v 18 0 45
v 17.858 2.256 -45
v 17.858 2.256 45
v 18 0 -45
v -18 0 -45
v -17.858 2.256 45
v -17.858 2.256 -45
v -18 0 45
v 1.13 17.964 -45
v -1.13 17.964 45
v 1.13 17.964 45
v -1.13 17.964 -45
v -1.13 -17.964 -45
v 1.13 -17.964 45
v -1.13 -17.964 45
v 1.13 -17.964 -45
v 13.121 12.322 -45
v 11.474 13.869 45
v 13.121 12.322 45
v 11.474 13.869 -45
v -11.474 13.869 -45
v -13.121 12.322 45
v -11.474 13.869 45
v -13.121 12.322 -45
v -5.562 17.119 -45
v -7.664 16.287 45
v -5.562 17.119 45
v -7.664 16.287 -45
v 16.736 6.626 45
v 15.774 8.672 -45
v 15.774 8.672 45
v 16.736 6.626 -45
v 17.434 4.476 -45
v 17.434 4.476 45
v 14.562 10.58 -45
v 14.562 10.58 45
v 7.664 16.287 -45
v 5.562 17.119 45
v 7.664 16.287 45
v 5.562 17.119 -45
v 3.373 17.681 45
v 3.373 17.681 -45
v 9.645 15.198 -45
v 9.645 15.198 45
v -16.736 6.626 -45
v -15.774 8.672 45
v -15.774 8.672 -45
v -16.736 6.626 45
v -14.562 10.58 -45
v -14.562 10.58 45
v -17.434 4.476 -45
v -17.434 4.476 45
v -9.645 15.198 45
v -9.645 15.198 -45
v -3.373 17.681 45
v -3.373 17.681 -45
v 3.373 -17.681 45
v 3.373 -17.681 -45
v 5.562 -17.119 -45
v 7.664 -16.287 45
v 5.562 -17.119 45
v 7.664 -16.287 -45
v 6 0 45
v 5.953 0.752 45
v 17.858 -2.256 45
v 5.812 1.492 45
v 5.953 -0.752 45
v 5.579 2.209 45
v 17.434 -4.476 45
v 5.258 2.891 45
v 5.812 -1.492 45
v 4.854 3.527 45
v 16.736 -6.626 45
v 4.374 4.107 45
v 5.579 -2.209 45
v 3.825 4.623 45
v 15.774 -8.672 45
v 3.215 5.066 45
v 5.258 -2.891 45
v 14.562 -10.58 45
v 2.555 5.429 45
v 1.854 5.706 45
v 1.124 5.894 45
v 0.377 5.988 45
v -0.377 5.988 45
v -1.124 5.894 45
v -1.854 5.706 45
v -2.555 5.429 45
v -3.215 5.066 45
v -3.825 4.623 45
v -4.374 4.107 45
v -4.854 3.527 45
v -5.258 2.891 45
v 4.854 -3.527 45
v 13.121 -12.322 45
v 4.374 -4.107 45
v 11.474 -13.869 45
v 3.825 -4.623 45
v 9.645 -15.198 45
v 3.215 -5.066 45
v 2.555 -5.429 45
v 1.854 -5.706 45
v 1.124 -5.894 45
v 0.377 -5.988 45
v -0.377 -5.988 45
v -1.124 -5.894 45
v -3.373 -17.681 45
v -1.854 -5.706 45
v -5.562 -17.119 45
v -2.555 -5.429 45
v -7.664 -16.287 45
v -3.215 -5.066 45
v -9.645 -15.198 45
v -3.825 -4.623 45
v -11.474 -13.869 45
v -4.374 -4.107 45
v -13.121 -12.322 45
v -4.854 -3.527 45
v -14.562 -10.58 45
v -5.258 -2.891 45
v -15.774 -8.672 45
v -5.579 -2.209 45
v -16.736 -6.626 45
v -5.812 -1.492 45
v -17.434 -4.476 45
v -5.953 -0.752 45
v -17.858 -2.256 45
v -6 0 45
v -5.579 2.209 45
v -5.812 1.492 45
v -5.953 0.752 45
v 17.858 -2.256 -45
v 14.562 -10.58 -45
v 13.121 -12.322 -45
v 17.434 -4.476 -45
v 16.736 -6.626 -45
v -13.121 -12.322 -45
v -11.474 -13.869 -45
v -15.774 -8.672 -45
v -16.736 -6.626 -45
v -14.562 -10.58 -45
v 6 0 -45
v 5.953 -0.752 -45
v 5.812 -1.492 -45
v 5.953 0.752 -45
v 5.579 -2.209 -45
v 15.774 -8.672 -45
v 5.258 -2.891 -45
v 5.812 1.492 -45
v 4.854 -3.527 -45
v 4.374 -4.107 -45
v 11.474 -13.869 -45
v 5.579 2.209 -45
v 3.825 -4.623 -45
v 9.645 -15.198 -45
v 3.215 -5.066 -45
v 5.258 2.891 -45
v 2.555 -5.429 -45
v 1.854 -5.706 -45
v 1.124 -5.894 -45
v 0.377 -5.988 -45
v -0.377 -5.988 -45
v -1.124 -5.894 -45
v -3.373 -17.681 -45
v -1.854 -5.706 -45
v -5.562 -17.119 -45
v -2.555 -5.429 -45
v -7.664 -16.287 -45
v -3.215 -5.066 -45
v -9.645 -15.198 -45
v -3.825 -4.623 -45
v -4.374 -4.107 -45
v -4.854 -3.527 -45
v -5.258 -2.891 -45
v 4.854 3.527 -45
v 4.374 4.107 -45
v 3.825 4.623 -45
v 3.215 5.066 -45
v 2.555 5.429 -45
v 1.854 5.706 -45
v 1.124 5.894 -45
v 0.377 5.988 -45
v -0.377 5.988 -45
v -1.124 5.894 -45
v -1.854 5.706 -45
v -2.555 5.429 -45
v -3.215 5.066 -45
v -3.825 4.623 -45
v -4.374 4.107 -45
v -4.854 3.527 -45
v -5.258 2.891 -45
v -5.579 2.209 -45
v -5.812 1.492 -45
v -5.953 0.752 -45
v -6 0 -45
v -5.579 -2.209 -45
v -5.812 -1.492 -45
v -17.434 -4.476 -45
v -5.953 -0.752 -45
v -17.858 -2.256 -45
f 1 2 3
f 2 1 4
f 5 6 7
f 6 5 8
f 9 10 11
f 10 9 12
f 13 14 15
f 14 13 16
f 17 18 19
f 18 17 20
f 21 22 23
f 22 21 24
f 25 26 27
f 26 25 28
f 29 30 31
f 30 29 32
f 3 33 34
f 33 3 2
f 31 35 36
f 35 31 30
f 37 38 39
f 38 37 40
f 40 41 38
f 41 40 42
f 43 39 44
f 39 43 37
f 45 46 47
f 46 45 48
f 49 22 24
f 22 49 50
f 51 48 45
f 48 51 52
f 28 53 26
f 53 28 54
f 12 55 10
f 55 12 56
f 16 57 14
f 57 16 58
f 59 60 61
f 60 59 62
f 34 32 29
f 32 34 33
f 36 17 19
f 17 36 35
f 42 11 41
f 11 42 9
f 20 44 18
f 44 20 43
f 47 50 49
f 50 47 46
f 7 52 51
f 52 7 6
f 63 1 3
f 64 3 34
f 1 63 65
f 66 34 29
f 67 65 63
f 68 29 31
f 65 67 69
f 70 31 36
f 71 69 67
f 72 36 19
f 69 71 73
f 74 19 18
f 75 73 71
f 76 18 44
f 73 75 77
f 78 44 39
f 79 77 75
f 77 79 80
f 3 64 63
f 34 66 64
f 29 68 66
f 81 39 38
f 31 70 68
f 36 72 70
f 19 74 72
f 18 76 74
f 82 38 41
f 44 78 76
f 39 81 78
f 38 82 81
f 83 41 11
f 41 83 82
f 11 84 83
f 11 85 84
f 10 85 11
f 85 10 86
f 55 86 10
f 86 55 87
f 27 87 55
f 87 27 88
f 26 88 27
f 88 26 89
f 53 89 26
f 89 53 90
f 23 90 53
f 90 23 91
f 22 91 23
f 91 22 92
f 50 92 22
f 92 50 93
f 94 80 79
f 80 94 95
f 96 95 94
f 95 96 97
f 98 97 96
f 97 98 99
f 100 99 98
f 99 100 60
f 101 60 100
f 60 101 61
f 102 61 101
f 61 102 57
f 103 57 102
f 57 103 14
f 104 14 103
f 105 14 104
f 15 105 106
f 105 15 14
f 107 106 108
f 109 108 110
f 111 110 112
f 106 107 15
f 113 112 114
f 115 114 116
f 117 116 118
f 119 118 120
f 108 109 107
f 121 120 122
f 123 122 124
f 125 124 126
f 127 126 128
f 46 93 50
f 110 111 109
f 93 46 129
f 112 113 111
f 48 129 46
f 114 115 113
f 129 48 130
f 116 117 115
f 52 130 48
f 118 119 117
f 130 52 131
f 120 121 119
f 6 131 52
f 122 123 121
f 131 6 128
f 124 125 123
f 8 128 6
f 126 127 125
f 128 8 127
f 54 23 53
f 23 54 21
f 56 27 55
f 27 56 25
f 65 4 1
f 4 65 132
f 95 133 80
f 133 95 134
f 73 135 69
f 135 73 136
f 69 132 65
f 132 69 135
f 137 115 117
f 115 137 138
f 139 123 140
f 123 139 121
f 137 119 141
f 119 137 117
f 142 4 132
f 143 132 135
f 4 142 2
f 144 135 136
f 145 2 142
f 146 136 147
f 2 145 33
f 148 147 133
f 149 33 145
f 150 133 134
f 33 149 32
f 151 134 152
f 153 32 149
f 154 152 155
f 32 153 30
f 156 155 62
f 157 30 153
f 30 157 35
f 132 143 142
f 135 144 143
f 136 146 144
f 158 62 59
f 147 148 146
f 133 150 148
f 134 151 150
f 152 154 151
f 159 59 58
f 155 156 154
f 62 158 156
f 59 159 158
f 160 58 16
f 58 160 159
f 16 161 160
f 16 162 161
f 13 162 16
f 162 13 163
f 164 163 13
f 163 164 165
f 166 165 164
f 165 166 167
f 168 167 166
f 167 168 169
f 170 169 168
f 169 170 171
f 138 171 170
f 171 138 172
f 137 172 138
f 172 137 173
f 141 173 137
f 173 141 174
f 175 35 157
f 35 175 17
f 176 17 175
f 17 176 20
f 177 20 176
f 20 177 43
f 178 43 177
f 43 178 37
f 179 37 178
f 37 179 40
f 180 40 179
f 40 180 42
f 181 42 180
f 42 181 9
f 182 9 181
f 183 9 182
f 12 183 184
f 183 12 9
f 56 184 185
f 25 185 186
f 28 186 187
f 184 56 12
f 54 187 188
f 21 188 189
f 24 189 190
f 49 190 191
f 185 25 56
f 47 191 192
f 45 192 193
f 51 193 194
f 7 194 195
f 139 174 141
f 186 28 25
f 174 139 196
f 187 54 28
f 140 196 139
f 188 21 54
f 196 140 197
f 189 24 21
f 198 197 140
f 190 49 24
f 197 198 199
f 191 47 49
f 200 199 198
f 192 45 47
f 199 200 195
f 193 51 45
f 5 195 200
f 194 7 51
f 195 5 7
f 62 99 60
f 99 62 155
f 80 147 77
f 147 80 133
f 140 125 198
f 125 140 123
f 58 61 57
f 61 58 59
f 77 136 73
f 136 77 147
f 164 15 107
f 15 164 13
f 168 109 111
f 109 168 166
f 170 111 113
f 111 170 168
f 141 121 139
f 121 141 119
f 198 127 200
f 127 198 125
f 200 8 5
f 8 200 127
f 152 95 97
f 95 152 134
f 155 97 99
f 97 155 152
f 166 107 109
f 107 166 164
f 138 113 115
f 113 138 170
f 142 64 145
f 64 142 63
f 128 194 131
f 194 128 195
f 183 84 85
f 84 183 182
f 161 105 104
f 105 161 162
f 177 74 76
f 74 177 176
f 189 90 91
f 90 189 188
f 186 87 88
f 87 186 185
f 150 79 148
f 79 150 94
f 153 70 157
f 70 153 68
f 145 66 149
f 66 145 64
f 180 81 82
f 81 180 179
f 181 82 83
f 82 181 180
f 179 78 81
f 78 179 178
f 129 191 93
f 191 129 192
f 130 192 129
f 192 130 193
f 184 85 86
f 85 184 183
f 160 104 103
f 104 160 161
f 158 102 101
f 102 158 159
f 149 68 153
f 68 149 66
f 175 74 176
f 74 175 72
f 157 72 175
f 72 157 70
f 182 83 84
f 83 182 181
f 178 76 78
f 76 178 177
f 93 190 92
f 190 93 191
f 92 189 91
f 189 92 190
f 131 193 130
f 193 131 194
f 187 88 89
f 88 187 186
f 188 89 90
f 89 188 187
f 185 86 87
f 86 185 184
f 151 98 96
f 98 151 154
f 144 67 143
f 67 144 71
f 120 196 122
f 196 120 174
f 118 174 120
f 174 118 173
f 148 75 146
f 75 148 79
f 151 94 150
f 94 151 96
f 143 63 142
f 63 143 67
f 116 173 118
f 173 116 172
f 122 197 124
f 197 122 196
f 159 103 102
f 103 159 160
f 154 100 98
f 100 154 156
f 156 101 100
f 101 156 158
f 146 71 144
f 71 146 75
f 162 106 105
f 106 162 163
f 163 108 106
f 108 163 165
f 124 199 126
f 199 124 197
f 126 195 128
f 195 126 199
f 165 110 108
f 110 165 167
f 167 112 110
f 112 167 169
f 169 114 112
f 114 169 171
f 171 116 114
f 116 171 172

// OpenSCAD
$fn = 50;


difference() {
	union() {
		translate(v = [0, 0, -45.0000000000]) {
			cylinder(h = 90, r = 18.0000000000);
		}
	}
	union() {
		translate(v = [0, 0, -100.0000000000]) {
			cylinder(h = 200, r = 6);
		}
	}
}
